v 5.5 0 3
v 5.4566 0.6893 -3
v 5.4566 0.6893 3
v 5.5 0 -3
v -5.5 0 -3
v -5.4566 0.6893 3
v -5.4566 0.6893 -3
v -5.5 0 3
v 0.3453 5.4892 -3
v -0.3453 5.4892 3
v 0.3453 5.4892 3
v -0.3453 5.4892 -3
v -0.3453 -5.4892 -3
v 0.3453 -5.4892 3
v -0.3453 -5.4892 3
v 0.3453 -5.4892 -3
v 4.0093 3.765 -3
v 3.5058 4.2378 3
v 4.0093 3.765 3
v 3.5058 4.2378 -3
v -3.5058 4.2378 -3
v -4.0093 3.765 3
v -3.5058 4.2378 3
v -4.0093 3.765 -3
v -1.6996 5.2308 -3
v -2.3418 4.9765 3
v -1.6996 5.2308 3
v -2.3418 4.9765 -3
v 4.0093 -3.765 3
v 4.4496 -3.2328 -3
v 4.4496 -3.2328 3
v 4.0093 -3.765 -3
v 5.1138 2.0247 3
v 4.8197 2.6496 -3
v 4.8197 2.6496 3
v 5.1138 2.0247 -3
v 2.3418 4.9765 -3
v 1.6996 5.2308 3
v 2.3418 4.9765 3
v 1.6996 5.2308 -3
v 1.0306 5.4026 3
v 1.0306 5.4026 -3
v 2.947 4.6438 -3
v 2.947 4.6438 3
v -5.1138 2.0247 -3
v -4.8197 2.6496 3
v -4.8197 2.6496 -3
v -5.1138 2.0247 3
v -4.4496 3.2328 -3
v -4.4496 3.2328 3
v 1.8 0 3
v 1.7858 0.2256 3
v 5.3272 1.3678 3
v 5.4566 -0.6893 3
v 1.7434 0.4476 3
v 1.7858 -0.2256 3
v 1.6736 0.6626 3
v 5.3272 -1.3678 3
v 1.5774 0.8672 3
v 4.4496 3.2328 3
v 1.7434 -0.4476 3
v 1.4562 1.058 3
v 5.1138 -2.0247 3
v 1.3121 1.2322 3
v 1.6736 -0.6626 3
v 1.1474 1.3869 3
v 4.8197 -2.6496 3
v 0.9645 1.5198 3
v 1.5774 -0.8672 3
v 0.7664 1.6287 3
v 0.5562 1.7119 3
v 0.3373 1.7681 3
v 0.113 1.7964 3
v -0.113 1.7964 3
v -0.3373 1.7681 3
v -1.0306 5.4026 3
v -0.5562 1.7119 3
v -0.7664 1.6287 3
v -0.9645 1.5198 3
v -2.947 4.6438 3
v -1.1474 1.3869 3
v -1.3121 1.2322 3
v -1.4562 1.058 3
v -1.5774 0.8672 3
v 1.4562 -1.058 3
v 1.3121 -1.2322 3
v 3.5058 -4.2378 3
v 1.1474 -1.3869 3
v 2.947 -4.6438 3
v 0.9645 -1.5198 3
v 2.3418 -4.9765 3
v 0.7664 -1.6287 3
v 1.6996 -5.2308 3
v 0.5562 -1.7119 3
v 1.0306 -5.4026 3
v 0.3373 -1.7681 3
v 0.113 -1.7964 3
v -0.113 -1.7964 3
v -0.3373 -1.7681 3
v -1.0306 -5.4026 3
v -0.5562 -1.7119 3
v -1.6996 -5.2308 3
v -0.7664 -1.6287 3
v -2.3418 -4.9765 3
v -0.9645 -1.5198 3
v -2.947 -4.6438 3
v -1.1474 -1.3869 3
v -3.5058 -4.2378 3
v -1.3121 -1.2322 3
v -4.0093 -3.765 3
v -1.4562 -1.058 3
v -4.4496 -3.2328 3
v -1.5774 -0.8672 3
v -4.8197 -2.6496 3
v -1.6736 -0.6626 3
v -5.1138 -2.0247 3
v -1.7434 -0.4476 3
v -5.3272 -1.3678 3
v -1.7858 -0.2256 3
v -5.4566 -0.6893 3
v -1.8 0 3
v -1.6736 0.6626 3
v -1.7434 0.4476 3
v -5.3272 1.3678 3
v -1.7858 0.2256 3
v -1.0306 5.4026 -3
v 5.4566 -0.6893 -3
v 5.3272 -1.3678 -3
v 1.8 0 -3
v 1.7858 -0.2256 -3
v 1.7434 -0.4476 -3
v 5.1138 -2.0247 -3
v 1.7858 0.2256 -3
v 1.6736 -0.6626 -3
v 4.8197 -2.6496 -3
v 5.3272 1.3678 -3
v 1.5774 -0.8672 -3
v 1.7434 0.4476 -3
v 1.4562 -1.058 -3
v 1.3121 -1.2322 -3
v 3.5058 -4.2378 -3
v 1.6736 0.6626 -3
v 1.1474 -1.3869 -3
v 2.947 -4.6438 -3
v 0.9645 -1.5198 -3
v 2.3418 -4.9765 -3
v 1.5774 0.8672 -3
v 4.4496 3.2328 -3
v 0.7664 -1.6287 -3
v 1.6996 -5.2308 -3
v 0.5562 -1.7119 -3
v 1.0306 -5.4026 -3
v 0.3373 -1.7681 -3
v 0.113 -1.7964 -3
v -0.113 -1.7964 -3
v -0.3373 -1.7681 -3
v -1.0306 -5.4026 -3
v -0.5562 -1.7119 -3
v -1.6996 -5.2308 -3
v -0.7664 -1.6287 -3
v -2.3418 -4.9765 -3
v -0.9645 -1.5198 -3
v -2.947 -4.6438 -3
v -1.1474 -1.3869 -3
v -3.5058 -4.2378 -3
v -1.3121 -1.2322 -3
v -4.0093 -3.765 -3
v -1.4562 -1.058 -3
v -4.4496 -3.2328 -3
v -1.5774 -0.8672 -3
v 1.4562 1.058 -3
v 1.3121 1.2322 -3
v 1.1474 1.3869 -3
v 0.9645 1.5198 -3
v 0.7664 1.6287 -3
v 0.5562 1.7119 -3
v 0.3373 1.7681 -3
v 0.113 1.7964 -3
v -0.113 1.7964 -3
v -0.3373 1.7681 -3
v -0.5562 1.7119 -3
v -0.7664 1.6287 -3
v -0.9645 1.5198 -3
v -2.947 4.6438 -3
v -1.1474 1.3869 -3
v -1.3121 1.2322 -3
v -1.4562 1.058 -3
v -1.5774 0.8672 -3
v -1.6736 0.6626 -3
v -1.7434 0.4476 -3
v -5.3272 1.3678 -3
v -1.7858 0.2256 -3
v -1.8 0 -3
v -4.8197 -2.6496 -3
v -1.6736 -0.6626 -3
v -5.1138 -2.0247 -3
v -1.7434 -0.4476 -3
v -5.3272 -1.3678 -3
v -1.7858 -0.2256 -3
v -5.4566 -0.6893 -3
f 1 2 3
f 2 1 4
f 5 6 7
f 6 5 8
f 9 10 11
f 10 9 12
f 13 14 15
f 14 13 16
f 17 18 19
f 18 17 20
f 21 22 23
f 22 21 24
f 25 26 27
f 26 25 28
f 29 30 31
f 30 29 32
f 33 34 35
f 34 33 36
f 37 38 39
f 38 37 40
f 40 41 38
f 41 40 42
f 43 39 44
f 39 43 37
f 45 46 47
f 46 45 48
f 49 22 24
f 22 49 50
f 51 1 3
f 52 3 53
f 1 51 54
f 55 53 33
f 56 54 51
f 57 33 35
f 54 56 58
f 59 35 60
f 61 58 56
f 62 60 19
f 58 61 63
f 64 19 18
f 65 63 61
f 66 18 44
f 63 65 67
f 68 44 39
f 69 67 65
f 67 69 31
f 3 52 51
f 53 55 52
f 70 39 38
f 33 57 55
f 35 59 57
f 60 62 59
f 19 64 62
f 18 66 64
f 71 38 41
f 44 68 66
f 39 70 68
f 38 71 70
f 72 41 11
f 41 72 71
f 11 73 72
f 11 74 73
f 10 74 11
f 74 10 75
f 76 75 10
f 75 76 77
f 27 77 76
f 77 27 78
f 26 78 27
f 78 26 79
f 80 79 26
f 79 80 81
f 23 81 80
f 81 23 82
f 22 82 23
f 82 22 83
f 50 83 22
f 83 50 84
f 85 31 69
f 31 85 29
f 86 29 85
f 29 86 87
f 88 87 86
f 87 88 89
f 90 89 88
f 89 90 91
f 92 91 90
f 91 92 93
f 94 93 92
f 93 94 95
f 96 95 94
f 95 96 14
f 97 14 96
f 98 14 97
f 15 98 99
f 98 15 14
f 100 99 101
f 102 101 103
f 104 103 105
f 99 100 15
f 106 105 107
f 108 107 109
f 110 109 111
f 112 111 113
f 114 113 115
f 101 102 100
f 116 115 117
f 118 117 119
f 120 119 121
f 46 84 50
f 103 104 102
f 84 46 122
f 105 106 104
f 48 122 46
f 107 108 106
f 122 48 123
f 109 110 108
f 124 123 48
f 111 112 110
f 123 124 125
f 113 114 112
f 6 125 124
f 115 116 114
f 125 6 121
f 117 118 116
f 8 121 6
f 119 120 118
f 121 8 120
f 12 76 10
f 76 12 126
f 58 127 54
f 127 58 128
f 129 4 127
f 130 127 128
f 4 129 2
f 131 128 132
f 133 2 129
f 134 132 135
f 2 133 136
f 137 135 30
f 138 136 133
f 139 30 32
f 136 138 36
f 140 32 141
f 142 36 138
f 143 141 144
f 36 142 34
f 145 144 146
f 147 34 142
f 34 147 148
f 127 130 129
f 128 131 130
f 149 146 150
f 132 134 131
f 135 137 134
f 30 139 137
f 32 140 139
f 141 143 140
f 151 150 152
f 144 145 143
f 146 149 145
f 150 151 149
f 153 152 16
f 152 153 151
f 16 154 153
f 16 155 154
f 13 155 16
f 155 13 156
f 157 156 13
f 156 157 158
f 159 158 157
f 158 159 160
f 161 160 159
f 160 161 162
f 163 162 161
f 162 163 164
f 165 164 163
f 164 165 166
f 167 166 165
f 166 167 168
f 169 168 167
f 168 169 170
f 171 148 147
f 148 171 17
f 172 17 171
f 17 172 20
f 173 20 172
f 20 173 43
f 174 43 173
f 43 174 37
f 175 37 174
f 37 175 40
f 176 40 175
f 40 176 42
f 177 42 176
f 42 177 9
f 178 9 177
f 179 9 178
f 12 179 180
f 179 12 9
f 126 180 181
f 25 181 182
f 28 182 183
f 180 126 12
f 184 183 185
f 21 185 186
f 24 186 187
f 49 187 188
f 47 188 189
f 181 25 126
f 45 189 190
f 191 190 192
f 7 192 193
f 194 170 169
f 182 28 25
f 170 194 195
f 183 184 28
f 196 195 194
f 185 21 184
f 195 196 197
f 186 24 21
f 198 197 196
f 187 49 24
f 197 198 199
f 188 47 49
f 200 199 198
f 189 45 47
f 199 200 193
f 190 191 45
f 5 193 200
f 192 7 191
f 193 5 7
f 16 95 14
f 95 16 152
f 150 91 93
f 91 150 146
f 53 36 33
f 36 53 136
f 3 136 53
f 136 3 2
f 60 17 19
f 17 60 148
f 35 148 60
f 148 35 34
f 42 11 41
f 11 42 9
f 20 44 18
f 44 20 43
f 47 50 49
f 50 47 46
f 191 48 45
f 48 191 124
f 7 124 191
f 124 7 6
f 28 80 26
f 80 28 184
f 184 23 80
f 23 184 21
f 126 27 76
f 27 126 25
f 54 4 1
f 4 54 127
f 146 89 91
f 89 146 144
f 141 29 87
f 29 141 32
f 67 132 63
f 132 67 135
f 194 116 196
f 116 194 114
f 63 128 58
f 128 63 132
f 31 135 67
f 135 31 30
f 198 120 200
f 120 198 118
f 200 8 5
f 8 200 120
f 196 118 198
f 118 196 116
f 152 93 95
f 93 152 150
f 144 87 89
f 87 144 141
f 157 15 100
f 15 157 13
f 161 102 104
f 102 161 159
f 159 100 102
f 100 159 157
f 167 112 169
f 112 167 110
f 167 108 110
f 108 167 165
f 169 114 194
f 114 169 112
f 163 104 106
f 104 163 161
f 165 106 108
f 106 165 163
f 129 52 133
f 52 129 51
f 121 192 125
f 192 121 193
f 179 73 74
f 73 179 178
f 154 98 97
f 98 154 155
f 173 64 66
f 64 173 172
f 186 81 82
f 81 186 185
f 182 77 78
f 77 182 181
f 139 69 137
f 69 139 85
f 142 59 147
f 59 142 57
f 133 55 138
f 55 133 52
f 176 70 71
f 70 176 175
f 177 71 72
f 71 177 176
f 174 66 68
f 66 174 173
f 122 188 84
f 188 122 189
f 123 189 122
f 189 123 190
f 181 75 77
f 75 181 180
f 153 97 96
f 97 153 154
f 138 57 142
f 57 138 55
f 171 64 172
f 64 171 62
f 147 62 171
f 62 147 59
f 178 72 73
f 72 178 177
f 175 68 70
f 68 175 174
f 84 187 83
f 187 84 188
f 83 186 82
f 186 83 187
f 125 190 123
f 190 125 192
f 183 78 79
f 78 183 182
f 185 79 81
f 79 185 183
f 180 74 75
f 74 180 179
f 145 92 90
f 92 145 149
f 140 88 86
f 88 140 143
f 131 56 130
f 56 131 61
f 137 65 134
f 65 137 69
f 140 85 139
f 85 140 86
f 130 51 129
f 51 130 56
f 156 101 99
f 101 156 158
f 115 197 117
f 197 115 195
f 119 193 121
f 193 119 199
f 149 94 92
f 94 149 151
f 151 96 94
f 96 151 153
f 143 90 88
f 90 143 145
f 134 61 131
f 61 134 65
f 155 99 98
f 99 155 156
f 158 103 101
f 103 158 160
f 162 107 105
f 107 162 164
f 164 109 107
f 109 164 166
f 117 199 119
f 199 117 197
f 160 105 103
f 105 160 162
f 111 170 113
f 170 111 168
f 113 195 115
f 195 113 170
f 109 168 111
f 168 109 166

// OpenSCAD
$fn = 50;


difference() {
	union() {
		translate(v = [0, 0, -3.0000000000]) {
			cylinder(h = 6, r = 5.5000000000);
		}
	}
	union() {
		translate(v = [0, 0, -100.0000000000]) {
			cylinder(h = 200, r = 1.8000000000);
		}
	}
}
